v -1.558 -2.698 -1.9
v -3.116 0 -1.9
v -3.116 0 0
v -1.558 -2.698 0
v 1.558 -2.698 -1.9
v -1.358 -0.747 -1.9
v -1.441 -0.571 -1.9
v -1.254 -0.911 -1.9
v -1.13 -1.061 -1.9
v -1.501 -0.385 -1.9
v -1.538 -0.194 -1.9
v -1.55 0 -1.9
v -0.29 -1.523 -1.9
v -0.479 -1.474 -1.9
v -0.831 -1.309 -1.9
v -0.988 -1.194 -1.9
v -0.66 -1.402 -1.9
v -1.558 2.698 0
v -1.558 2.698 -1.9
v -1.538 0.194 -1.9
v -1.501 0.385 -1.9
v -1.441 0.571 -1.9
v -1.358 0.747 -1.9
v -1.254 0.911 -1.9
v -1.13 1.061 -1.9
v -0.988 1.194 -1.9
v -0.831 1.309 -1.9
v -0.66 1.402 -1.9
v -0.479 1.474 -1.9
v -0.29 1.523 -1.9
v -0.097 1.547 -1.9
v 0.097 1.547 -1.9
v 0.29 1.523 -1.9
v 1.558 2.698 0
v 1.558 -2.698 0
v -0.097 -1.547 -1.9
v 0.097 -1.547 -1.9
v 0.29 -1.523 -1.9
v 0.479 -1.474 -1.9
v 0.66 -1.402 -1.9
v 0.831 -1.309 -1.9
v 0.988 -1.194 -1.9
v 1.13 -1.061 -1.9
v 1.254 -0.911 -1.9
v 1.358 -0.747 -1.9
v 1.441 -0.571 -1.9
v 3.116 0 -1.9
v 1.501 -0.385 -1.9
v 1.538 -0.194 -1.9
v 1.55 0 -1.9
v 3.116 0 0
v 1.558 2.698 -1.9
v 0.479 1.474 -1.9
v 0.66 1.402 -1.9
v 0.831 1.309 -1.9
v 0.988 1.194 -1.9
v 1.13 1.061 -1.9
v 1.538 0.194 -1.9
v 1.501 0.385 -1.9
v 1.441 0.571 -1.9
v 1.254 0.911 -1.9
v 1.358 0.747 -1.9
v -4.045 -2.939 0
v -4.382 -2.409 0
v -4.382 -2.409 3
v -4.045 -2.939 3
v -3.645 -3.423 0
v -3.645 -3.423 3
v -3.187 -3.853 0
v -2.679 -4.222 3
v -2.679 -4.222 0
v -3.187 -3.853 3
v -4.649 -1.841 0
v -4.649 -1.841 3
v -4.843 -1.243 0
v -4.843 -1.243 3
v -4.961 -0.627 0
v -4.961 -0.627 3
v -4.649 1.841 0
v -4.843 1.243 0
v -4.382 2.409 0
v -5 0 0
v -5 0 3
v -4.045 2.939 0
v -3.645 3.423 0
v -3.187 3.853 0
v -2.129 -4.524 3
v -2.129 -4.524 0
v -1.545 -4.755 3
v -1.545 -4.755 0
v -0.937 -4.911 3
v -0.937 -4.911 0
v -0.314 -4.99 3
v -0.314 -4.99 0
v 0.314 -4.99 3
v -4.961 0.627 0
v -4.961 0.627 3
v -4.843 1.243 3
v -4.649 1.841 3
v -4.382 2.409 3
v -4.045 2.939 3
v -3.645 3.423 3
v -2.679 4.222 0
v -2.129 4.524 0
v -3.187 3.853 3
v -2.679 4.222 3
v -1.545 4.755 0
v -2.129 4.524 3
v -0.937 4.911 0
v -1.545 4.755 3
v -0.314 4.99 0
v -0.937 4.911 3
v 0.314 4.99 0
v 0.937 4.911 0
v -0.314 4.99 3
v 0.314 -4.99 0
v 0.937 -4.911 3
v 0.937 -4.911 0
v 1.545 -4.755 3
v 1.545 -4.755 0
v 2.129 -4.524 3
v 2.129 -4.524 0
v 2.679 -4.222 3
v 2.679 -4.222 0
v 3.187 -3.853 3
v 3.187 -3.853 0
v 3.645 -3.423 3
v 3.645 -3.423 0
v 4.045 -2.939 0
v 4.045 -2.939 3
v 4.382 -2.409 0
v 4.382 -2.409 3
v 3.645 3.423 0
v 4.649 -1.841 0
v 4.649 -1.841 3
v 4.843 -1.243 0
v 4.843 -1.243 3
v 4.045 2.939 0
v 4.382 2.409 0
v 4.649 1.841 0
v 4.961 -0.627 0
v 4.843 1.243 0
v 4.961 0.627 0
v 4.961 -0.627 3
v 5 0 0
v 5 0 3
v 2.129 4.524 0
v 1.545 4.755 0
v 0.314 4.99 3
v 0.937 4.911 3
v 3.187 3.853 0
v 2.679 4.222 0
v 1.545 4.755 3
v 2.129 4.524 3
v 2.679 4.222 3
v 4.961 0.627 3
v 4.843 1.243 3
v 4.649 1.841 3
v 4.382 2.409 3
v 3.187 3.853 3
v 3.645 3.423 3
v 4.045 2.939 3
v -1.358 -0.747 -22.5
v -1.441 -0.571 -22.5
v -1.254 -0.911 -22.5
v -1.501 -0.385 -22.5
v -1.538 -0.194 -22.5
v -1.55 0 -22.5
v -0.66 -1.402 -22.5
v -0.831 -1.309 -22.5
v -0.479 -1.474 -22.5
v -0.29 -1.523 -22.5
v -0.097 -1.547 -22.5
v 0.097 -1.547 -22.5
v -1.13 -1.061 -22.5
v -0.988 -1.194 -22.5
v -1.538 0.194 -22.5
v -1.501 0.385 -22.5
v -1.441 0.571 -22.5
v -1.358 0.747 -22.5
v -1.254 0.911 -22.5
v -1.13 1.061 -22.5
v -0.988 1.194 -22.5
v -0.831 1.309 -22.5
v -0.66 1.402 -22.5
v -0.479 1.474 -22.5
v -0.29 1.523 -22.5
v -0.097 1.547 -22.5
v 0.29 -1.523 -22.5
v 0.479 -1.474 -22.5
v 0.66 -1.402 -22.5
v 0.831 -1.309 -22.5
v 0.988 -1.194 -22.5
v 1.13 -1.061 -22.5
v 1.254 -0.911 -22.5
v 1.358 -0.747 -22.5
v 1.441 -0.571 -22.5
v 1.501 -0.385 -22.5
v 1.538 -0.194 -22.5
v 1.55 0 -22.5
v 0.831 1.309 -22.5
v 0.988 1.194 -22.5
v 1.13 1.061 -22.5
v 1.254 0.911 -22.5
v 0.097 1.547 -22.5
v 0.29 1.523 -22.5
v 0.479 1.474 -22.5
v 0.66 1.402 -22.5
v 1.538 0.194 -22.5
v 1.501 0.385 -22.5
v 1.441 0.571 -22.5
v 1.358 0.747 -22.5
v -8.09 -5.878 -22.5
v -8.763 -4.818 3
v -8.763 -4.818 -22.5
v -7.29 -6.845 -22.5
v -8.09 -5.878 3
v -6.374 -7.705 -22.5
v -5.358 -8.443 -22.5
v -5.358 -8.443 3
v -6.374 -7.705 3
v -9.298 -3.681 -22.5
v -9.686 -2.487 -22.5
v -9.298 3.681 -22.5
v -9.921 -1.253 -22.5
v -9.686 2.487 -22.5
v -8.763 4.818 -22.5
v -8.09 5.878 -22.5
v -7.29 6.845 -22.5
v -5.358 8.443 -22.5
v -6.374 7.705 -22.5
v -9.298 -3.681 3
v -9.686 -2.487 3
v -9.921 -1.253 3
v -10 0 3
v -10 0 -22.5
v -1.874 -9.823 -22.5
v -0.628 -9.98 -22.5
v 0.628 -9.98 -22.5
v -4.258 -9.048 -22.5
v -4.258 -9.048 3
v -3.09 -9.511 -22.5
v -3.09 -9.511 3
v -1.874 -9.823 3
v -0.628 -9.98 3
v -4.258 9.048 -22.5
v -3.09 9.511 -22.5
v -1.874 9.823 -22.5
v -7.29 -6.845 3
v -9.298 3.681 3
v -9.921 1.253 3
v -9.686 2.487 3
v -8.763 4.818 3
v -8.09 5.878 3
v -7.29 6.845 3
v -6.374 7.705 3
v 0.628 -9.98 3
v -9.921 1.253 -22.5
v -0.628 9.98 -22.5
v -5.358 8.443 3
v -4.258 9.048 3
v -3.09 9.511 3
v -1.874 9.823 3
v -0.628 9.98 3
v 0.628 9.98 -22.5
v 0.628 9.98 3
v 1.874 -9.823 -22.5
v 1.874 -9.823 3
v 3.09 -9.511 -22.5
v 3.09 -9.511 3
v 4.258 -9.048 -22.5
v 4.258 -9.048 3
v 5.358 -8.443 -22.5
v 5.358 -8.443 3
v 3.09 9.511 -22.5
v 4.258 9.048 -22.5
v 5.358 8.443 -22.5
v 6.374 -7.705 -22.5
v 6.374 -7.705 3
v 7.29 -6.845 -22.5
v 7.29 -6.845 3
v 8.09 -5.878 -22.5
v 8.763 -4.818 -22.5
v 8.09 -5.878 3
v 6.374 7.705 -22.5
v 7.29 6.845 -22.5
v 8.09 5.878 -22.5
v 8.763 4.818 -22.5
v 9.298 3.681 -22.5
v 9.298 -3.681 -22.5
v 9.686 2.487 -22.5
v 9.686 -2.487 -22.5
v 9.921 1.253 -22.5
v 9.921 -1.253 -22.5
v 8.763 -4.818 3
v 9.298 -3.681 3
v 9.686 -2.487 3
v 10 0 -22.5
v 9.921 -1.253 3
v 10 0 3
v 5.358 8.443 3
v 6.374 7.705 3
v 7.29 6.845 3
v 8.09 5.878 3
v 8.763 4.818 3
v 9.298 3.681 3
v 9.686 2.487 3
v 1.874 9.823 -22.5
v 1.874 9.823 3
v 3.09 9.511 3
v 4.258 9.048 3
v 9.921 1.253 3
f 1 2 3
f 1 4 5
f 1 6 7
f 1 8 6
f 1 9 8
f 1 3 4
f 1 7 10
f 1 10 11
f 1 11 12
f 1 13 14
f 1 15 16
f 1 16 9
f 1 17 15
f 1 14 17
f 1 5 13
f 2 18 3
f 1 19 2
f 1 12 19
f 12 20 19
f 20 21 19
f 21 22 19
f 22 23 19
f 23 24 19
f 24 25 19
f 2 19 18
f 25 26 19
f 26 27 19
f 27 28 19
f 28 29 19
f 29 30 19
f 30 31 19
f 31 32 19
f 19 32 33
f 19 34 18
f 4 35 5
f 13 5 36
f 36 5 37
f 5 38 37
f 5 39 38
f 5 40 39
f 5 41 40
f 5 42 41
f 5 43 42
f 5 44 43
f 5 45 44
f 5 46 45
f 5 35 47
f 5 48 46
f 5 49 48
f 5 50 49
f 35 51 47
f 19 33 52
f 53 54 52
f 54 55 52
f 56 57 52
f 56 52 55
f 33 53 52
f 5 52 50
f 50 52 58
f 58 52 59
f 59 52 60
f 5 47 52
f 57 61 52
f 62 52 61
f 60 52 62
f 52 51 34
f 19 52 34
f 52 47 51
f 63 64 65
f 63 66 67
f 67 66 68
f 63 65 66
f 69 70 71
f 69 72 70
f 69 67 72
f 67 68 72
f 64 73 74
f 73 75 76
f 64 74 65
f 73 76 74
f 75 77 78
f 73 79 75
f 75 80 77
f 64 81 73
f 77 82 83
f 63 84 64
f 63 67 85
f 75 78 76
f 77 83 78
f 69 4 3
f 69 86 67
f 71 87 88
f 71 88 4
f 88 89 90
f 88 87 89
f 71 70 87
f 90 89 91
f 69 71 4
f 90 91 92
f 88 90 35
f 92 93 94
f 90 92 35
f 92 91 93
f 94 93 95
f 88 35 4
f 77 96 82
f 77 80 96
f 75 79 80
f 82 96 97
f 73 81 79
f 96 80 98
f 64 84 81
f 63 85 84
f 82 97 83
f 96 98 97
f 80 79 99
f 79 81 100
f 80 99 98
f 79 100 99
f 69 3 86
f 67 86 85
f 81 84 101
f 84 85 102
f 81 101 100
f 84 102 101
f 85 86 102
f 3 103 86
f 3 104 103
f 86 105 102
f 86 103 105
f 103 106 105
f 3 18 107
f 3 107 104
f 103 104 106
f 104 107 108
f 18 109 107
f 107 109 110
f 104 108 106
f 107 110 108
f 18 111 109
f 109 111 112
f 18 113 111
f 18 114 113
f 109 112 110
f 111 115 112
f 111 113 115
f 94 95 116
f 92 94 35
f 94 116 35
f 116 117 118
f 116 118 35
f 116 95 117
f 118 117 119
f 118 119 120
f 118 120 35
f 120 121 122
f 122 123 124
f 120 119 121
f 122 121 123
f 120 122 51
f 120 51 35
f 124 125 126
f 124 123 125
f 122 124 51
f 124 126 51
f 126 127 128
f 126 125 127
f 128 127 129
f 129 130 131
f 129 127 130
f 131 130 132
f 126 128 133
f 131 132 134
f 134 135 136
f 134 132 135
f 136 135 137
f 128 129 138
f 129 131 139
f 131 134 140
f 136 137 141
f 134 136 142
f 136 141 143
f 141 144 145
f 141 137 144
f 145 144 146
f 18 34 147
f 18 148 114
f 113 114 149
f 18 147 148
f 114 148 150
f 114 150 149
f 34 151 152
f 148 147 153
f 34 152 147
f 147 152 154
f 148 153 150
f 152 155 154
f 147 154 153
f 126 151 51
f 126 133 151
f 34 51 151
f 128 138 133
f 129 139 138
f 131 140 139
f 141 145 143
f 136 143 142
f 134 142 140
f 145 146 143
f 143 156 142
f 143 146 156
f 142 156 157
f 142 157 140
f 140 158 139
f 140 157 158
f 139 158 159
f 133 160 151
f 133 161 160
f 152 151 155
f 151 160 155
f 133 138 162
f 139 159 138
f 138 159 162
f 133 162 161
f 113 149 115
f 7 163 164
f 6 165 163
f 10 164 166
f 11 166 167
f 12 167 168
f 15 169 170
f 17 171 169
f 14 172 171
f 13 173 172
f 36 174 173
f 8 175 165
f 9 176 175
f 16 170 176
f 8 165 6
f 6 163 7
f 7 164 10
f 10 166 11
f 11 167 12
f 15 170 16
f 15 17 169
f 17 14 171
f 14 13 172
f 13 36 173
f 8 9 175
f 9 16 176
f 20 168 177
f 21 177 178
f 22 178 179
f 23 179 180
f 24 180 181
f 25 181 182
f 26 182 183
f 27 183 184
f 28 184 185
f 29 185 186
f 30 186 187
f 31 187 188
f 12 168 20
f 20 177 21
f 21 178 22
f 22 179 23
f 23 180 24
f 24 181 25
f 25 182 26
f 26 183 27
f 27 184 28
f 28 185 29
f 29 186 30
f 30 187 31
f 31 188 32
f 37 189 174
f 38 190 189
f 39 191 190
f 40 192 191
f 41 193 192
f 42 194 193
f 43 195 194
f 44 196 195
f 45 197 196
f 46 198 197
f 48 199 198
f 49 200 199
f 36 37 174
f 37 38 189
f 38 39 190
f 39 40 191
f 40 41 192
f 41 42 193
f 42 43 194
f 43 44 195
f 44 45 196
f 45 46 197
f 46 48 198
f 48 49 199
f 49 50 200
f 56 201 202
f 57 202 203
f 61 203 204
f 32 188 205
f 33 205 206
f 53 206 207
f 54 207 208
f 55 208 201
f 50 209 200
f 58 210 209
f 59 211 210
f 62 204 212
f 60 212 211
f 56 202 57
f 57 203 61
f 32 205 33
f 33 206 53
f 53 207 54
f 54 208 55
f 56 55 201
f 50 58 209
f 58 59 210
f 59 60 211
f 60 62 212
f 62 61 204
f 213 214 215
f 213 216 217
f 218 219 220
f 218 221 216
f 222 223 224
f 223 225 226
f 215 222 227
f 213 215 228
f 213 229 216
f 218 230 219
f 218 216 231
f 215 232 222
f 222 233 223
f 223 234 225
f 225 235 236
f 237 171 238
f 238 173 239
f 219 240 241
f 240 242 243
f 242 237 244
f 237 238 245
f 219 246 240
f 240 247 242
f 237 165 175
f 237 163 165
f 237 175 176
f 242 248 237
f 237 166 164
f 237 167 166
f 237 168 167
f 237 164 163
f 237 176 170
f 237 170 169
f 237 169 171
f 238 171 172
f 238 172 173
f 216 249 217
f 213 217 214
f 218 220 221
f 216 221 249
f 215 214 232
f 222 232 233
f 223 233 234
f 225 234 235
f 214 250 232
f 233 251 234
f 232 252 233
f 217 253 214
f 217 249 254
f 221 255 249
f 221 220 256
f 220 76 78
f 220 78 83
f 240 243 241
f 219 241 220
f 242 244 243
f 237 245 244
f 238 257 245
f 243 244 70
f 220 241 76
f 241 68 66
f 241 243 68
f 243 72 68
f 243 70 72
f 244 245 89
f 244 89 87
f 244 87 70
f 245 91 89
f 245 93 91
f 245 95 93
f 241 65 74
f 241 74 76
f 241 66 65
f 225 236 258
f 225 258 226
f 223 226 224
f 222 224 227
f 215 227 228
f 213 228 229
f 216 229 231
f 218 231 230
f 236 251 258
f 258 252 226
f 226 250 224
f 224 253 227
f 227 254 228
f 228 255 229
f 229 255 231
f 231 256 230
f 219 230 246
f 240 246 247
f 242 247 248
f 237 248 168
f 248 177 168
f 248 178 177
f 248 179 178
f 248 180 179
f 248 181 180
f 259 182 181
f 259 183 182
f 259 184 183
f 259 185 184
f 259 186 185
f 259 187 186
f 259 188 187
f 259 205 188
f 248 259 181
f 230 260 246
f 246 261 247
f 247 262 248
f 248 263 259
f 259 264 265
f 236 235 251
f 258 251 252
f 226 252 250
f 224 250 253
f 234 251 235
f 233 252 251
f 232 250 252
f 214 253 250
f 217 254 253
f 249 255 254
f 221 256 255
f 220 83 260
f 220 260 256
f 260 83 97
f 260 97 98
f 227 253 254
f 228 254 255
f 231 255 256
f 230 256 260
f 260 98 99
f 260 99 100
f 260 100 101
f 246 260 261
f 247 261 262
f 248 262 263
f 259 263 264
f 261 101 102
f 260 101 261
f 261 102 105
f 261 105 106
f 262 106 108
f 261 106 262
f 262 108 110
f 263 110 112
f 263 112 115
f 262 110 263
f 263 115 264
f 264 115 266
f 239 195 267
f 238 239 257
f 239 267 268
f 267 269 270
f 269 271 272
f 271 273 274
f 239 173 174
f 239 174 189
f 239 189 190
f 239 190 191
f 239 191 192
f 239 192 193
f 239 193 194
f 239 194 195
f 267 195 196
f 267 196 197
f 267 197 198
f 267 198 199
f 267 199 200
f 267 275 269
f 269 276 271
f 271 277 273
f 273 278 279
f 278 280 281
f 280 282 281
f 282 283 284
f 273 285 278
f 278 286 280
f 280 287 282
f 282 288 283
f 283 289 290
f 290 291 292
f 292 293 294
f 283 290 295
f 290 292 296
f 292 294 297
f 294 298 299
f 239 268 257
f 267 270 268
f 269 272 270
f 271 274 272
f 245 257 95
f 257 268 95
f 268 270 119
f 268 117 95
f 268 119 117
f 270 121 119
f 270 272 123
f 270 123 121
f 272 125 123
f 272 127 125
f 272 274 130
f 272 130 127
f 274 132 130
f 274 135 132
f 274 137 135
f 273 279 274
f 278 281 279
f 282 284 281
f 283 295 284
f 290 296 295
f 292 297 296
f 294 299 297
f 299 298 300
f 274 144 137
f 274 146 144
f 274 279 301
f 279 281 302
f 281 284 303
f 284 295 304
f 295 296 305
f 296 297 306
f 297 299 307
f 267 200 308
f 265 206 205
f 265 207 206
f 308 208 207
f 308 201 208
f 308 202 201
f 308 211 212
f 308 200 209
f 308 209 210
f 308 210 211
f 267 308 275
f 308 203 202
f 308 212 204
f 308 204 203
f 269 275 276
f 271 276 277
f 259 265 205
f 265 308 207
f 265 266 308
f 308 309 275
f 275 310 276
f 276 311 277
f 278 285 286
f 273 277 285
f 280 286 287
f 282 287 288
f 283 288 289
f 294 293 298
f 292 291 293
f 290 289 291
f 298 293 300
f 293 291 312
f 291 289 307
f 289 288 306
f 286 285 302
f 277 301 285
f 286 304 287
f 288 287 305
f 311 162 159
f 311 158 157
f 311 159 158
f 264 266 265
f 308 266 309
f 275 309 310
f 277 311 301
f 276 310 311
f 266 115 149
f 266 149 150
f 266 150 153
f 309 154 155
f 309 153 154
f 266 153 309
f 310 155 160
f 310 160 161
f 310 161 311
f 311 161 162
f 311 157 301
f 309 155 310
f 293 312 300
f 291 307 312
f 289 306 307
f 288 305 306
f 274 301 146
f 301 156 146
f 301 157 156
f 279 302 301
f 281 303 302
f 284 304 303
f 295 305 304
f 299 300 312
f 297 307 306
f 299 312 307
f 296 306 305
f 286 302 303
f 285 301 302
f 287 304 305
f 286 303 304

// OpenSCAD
$fn = 50;


difference() {
	union() {
		translate(v = [0, 0, -22.5000000000]) {
			cylinder(h = 25.5000000000, r = 10.0000000000);
		}
	}
	union() {
		translate(v = [0, 0, 0]) {
			rotate(a = [0, 0, 0]) {
				difference() {
					union() {
						translate(v = [0, 0, -1.9000000000]) {
							linear_extrude(height = 1.9000000000) {
								polygon(points = [[3.1158000000, 0.0000000000], [1.5579000000, 2.6983619531], [-1.5579000000, 2.6983619531], [-3.1158000000, 0.0000000000], [-1.5579000000, -2.6983619531], [1.5579000000, -2.6983619531]]);
							}
						}
					}
					union();
				}
			}
		}
		#cylinder(h = 3, r = 5.0000000000);
		#translate(v = [0, 0, -100.0000000000]) {
			cylinder(h = 200, r = 1.5500000000);
		}
	}
}
